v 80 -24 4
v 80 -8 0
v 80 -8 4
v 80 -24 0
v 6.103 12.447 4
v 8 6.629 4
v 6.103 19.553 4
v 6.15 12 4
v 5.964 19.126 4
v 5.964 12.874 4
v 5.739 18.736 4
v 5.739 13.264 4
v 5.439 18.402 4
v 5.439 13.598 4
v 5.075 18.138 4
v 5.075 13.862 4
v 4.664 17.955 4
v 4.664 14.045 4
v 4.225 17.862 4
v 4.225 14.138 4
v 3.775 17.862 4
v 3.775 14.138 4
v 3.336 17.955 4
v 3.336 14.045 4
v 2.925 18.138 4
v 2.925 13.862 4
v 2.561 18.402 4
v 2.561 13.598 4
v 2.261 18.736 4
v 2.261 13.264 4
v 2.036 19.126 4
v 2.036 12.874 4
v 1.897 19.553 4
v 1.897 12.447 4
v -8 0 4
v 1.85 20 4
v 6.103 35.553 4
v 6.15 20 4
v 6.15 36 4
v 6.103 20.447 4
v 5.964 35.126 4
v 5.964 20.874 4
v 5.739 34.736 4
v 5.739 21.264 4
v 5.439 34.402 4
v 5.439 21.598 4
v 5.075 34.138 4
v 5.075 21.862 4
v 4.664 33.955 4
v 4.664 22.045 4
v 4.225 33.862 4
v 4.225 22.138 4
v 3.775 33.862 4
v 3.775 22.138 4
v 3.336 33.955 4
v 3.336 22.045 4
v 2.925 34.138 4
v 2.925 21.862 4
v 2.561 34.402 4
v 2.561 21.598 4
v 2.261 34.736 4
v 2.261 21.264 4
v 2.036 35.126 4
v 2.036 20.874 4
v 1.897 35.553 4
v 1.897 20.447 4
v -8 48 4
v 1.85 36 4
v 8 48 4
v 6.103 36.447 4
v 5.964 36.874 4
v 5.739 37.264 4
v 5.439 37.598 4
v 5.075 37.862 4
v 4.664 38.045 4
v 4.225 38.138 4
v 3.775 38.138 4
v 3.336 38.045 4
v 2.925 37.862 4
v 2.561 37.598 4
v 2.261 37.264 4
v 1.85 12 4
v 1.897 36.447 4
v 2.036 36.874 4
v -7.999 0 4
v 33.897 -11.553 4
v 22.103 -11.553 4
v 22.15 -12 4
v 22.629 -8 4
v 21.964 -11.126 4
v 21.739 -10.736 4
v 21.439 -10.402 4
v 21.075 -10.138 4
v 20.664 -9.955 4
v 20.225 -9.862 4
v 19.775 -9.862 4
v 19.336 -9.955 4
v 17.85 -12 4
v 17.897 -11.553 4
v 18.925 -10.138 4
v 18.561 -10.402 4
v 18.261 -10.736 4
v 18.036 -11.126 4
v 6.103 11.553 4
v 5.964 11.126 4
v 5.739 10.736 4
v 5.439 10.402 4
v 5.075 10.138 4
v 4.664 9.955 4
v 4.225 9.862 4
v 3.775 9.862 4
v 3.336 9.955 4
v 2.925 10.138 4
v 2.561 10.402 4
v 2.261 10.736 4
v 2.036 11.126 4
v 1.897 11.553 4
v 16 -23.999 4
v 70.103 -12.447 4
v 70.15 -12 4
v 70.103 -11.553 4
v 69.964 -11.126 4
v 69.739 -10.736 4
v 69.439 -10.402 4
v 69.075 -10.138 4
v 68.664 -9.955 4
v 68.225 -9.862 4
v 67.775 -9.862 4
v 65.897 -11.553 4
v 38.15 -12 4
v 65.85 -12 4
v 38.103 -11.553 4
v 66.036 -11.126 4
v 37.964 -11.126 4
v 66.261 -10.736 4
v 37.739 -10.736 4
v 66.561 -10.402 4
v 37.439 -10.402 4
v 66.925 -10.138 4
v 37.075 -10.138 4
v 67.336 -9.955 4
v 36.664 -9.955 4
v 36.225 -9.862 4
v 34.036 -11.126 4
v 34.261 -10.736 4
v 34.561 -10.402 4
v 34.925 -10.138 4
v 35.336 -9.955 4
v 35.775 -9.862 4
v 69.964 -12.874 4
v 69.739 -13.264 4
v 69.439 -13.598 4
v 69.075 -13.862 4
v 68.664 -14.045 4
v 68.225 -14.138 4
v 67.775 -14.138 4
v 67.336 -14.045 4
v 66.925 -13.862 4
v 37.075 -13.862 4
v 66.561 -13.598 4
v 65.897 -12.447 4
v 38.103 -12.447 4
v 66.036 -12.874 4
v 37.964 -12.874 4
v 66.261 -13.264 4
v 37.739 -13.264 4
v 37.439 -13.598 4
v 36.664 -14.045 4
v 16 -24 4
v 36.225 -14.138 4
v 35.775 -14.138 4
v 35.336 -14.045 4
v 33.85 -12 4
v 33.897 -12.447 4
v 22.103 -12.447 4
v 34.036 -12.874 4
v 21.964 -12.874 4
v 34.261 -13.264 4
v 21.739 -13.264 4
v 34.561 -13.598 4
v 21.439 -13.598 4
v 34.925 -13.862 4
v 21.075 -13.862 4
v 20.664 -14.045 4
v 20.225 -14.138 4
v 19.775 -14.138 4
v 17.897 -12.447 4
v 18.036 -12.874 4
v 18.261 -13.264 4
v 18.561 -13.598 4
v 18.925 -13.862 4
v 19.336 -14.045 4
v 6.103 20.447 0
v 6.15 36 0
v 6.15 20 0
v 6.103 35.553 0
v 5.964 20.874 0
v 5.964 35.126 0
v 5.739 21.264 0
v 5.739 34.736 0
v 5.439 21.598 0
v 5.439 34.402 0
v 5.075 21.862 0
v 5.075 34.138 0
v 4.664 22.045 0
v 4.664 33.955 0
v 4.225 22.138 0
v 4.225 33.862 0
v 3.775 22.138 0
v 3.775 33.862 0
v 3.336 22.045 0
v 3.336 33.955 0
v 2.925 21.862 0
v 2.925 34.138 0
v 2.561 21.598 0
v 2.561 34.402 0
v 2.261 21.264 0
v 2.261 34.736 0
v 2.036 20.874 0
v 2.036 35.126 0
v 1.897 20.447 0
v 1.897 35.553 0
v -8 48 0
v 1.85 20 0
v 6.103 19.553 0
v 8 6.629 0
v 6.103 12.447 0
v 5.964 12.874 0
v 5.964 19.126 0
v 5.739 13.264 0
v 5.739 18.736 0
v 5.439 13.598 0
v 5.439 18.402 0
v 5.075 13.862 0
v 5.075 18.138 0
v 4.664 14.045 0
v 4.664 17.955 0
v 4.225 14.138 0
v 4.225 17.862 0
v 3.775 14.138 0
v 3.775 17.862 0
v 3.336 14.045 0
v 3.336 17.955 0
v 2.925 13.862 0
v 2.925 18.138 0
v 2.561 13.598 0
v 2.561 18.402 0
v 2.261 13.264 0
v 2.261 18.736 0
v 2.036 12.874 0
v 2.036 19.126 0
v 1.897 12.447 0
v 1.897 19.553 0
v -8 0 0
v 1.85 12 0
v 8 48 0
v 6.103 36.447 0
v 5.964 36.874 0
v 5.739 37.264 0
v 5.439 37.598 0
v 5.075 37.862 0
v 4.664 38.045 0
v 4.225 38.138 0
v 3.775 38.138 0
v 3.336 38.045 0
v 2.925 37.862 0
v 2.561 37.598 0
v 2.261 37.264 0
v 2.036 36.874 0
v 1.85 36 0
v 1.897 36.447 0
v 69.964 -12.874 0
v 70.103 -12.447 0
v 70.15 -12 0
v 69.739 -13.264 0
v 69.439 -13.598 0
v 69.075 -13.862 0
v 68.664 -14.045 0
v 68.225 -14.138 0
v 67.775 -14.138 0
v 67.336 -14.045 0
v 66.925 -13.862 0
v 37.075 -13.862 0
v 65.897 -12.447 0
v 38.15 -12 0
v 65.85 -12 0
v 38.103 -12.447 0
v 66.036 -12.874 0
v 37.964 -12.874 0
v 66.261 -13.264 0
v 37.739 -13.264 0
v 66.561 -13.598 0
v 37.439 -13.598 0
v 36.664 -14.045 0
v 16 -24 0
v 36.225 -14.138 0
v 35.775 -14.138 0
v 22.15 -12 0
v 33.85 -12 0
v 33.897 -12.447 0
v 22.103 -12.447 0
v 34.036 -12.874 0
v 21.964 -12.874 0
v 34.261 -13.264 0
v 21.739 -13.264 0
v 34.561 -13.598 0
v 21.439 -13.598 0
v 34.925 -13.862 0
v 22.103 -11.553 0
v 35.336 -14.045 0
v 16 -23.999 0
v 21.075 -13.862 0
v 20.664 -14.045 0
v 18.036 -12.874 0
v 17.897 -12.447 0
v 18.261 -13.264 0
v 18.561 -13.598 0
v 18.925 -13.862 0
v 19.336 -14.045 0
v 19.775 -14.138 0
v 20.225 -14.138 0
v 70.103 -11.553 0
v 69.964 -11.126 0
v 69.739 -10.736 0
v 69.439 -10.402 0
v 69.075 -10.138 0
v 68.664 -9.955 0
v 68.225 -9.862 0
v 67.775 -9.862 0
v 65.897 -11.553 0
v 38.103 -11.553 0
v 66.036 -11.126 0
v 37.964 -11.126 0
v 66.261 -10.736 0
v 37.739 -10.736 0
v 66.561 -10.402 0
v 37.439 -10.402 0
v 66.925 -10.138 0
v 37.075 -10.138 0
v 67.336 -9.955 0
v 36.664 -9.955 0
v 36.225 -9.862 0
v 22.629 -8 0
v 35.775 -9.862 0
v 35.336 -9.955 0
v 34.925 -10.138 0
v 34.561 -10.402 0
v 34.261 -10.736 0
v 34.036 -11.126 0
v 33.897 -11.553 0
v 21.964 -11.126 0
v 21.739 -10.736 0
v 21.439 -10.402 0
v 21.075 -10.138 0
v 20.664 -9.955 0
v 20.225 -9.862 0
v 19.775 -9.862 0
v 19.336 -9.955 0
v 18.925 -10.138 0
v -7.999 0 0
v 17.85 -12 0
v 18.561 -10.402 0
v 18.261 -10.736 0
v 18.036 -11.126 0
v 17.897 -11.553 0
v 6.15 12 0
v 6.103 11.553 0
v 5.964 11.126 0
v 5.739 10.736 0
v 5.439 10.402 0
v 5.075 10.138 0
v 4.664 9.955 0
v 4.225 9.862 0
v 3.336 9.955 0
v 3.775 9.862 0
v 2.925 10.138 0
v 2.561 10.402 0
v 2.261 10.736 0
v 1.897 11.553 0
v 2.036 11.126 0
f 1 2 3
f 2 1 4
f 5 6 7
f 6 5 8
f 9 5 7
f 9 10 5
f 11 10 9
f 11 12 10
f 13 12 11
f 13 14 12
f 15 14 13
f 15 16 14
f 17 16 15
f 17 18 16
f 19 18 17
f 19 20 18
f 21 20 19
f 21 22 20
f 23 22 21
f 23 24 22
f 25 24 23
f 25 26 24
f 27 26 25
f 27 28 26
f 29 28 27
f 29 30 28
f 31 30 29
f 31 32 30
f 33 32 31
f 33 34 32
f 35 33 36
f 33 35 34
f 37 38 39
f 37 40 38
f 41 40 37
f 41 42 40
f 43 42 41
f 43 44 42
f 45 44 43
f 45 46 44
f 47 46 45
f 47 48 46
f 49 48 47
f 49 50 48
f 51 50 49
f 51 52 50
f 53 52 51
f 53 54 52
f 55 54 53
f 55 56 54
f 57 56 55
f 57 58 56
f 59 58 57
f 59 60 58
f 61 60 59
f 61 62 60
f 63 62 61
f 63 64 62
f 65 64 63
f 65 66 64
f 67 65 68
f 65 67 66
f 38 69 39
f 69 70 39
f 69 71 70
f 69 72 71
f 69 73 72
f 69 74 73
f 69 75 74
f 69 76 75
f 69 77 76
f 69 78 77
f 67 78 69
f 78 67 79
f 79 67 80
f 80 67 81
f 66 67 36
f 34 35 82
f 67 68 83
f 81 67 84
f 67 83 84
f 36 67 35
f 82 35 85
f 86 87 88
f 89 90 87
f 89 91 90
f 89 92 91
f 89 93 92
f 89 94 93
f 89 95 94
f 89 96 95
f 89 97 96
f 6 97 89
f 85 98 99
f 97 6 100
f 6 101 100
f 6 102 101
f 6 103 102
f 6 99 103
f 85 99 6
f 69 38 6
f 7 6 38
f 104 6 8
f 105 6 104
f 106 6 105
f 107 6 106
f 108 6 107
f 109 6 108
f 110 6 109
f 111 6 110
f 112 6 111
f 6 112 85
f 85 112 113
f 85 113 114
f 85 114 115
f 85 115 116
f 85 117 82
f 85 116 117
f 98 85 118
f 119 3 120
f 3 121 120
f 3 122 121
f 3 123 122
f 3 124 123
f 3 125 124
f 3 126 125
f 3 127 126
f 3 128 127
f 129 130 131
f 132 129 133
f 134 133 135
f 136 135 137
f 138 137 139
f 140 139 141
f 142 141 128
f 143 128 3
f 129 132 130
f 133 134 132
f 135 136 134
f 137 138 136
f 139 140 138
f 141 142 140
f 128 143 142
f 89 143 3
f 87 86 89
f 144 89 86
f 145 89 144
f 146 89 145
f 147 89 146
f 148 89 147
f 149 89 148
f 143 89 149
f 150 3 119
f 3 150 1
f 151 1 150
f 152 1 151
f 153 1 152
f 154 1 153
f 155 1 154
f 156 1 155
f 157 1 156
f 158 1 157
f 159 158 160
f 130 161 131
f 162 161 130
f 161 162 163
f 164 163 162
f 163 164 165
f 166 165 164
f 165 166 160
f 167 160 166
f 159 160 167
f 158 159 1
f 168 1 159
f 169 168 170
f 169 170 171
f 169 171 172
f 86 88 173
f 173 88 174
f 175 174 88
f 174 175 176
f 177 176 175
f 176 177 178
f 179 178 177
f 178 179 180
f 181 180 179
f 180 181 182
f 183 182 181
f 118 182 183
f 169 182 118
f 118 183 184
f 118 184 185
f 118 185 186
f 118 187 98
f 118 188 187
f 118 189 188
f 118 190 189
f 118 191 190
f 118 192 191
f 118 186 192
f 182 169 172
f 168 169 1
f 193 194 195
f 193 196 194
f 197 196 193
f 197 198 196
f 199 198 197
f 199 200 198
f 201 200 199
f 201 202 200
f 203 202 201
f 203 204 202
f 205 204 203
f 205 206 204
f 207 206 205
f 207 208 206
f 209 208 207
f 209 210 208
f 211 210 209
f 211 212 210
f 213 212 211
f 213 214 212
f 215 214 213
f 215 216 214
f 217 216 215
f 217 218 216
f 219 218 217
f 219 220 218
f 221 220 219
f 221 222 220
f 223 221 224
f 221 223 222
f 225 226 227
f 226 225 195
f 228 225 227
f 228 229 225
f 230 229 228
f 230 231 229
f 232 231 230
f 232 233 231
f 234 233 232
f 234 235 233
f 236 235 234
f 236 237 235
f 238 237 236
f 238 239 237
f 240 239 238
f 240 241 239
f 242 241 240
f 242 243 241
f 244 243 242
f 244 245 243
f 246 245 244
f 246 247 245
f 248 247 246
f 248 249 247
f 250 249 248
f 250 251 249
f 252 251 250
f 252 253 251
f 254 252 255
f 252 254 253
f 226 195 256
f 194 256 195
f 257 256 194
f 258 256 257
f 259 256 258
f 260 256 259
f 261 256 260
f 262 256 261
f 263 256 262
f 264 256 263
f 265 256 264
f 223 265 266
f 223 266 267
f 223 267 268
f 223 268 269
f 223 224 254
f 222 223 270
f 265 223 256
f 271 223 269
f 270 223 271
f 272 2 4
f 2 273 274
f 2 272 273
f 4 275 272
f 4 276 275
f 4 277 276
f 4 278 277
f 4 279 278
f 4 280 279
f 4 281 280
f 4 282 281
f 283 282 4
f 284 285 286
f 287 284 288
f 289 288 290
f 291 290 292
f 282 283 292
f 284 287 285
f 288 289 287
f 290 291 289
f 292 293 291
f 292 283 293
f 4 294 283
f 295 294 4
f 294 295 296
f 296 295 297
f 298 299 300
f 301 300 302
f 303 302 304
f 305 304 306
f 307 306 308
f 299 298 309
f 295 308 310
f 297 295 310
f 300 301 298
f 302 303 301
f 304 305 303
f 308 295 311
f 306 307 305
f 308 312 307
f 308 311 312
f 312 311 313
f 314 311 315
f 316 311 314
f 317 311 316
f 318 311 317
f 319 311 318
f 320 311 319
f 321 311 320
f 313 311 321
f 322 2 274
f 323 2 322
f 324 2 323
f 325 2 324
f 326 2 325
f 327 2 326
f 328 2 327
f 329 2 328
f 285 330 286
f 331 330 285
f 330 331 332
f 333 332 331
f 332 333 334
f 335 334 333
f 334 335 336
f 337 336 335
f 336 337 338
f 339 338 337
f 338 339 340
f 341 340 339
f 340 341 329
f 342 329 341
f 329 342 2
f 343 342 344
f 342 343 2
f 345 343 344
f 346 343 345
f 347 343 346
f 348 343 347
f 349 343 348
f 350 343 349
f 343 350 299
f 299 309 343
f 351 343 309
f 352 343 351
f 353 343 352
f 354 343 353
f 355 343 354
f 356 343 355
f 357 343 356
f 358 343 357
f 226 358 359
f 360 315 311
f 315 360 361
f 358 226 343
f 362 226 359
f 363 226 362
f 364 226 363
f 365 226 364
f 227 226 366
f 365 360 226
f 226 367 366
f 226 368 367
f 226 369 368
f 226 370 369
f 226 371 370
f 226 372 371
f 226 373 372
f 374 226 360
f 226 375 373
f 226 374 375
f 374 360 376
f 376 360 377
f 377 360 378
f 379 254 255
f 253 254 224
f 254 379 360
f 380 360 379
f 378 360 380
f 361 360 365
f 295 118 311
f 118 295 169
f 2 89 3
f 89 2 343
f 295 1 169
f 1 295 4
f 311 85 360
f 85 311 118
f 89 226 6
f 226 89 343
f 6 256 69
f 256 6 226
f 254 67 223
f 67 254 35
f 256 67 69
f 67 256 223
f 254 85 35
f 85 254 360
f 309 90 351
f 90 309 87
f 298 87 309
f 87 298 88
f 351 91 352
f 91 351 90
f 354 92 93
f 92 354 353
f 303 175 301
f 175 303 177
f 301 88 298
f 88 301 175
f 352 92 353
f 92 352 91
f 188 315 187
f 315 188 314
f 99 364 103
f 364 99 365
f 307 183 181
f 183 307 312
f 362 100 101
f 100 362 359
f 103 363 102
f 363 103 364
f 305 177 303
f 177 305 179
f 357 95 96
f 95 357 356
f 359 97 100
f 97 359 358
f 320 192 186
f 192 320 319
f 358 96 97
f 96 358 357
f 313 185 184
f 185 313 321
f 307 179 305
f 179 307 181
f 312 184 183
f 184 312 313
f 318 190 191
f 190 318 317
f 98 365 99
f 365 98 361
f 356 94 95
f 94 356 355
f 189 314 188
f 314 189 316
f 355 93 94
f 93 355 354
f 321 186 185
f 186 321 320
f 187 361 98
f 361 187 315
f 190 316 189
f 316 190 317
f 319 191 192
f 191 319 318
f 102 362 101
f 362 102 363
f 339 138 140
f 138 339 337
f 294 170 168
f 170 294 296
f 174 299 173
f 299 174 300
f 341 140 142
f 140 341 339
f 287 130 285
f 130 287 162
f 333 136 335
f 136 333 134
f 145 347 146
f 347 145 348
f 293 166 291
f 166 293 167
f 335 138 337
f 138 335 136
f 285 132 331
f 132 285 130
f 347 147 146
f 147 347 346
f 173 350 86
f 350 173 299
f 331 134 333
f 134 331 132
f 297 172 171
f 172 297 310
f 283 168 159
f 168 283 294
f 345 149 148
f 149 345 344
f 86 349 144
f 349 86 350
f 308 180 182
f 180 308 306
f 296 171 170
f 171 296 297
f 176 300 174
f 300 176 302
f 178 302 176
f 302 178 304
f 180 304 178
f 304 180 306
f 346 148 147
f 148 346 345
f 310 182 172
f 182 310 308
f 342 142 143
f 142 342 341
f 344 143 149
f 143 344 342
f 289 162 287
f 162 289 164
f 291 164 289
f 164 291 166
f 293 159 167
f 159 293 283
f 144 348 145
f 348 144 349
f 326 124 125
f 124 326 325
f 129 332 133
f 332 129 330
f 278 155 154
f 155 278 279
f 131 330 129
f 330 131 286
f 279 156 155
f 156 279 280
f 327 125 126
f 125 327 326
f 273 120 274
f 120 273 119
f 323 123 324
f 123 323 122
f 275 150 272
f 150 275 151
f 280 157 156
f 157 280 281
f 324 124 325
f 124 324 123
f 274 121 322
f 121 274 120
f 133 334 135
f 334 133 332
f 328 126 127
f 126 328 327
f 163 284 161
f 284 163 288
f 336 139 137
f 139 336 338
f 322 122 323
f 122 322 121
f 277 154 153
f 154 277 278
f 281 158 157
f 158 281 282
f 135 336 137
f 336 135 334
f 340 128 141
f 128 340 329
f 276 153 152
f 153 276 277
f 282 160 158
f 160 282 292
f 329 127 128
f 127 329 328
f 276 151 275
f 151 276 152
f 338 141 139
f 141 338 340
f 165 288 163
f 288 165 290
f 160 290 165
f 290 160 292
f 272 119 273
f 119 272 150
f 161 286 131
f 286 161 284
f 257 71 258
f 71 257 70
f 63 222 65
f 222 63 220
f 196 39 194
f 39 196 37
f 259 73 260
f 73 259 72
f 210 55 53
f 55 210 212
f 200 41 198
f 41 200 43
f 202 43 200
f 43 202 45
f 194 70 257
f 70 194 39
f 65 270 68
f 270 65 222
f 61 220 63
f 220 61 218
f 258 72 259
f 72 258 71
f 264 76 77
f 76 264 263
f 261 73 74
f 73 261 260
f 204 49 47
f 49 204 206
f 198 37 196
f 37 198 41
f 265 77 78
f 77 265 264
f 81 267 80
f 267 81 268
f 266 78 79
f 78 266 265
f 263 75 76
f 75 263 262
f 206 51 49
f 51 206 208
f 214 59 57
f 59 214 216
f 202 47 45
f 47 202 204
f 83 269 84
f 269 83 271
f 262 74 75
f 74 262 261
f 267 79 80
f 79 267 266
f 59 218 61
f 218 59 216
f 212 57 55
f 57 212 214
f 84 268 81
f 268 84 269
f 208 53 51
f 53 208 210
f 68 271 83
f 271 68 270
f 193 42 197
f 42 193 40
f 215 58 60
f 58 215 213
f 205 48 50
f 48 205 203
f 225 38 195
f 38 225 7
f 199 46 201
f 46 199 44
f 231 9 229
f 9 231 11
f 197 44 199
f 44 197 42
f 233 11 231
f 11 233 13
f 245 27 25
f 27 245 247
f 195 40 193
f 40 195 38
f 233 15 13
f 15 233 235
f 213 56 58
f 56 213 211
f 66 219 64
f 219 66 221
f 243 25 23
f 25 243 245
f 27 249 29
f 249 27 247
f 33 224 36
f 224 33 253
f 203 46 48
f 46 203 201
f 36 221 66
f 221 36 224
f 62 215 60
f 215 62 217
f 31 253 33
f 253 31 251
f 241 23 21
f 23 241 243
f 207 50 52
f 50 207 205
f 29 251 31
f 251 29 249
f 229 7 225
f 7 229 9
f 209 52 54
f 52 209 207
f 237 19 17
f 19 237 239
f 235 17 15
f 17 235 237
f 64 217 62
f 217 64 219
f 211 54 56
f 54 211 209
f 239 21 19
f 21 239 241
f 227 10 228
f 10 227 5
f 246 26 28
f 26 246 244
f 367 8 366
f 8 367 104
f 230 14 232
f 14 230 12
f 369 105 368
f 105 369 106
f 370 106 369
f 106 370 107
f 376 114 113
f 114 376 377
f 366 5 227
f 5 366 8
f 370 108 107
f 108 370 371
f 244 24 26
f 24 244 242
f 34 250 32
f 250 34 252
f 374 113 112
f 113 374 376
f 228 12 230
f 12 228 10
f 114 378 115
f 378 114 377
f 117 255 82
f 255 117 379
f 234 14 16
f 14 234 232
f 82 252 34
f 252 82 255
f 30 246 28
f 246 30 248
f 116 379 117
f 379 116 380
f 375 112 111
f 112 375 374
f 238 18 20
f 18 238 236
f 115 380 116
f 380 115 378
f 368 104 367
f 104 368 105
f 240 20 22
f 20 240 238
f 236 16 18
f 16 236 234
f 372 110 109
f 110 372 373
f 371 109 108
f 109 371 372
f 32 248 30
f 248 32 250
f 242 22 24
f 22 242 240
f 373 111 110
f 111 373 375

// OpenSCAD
difference () {
union() {
    translate([16,-24,0])
    cube([64,16,4]);
    
    // Section 2 at a 45º angle
        // not sure on 3.315. value is estimated
    translate([3.315,11.3136,0])
    rotate([0,0,225])
    cube([16,33.94,4]);
        
    // Section 1
    translate([-8,0,0])
    cube([16,48,4]);
}
    
    // Hole 4 from the piece
    translate([20,-12,-2])
    cylinder(r=2.15,45, $fn=30);

    // Hole 5 from the piece
    translate([36,-12,-2])
    cylinder(r=2.15,45, $fn=30);
    
    // Hole 6 from the piece (compatible with lego board and base plate)
    translate([68,-12,-2])
    cylinder(r=2.15,44, $fn=30);
    
    // Hole 1
    translate([4,36,-2])
    cylinder(r=2.15,44, $fn=30);

    // Hole 2
    translate([4,20,-2])
    cylinder(r=2.15,44, $fn=30);

    // Hole 3 (compatible with lego board)
    translate([4,12,-2])
    cylinder(r=2.15,44, $fn=30);
}
